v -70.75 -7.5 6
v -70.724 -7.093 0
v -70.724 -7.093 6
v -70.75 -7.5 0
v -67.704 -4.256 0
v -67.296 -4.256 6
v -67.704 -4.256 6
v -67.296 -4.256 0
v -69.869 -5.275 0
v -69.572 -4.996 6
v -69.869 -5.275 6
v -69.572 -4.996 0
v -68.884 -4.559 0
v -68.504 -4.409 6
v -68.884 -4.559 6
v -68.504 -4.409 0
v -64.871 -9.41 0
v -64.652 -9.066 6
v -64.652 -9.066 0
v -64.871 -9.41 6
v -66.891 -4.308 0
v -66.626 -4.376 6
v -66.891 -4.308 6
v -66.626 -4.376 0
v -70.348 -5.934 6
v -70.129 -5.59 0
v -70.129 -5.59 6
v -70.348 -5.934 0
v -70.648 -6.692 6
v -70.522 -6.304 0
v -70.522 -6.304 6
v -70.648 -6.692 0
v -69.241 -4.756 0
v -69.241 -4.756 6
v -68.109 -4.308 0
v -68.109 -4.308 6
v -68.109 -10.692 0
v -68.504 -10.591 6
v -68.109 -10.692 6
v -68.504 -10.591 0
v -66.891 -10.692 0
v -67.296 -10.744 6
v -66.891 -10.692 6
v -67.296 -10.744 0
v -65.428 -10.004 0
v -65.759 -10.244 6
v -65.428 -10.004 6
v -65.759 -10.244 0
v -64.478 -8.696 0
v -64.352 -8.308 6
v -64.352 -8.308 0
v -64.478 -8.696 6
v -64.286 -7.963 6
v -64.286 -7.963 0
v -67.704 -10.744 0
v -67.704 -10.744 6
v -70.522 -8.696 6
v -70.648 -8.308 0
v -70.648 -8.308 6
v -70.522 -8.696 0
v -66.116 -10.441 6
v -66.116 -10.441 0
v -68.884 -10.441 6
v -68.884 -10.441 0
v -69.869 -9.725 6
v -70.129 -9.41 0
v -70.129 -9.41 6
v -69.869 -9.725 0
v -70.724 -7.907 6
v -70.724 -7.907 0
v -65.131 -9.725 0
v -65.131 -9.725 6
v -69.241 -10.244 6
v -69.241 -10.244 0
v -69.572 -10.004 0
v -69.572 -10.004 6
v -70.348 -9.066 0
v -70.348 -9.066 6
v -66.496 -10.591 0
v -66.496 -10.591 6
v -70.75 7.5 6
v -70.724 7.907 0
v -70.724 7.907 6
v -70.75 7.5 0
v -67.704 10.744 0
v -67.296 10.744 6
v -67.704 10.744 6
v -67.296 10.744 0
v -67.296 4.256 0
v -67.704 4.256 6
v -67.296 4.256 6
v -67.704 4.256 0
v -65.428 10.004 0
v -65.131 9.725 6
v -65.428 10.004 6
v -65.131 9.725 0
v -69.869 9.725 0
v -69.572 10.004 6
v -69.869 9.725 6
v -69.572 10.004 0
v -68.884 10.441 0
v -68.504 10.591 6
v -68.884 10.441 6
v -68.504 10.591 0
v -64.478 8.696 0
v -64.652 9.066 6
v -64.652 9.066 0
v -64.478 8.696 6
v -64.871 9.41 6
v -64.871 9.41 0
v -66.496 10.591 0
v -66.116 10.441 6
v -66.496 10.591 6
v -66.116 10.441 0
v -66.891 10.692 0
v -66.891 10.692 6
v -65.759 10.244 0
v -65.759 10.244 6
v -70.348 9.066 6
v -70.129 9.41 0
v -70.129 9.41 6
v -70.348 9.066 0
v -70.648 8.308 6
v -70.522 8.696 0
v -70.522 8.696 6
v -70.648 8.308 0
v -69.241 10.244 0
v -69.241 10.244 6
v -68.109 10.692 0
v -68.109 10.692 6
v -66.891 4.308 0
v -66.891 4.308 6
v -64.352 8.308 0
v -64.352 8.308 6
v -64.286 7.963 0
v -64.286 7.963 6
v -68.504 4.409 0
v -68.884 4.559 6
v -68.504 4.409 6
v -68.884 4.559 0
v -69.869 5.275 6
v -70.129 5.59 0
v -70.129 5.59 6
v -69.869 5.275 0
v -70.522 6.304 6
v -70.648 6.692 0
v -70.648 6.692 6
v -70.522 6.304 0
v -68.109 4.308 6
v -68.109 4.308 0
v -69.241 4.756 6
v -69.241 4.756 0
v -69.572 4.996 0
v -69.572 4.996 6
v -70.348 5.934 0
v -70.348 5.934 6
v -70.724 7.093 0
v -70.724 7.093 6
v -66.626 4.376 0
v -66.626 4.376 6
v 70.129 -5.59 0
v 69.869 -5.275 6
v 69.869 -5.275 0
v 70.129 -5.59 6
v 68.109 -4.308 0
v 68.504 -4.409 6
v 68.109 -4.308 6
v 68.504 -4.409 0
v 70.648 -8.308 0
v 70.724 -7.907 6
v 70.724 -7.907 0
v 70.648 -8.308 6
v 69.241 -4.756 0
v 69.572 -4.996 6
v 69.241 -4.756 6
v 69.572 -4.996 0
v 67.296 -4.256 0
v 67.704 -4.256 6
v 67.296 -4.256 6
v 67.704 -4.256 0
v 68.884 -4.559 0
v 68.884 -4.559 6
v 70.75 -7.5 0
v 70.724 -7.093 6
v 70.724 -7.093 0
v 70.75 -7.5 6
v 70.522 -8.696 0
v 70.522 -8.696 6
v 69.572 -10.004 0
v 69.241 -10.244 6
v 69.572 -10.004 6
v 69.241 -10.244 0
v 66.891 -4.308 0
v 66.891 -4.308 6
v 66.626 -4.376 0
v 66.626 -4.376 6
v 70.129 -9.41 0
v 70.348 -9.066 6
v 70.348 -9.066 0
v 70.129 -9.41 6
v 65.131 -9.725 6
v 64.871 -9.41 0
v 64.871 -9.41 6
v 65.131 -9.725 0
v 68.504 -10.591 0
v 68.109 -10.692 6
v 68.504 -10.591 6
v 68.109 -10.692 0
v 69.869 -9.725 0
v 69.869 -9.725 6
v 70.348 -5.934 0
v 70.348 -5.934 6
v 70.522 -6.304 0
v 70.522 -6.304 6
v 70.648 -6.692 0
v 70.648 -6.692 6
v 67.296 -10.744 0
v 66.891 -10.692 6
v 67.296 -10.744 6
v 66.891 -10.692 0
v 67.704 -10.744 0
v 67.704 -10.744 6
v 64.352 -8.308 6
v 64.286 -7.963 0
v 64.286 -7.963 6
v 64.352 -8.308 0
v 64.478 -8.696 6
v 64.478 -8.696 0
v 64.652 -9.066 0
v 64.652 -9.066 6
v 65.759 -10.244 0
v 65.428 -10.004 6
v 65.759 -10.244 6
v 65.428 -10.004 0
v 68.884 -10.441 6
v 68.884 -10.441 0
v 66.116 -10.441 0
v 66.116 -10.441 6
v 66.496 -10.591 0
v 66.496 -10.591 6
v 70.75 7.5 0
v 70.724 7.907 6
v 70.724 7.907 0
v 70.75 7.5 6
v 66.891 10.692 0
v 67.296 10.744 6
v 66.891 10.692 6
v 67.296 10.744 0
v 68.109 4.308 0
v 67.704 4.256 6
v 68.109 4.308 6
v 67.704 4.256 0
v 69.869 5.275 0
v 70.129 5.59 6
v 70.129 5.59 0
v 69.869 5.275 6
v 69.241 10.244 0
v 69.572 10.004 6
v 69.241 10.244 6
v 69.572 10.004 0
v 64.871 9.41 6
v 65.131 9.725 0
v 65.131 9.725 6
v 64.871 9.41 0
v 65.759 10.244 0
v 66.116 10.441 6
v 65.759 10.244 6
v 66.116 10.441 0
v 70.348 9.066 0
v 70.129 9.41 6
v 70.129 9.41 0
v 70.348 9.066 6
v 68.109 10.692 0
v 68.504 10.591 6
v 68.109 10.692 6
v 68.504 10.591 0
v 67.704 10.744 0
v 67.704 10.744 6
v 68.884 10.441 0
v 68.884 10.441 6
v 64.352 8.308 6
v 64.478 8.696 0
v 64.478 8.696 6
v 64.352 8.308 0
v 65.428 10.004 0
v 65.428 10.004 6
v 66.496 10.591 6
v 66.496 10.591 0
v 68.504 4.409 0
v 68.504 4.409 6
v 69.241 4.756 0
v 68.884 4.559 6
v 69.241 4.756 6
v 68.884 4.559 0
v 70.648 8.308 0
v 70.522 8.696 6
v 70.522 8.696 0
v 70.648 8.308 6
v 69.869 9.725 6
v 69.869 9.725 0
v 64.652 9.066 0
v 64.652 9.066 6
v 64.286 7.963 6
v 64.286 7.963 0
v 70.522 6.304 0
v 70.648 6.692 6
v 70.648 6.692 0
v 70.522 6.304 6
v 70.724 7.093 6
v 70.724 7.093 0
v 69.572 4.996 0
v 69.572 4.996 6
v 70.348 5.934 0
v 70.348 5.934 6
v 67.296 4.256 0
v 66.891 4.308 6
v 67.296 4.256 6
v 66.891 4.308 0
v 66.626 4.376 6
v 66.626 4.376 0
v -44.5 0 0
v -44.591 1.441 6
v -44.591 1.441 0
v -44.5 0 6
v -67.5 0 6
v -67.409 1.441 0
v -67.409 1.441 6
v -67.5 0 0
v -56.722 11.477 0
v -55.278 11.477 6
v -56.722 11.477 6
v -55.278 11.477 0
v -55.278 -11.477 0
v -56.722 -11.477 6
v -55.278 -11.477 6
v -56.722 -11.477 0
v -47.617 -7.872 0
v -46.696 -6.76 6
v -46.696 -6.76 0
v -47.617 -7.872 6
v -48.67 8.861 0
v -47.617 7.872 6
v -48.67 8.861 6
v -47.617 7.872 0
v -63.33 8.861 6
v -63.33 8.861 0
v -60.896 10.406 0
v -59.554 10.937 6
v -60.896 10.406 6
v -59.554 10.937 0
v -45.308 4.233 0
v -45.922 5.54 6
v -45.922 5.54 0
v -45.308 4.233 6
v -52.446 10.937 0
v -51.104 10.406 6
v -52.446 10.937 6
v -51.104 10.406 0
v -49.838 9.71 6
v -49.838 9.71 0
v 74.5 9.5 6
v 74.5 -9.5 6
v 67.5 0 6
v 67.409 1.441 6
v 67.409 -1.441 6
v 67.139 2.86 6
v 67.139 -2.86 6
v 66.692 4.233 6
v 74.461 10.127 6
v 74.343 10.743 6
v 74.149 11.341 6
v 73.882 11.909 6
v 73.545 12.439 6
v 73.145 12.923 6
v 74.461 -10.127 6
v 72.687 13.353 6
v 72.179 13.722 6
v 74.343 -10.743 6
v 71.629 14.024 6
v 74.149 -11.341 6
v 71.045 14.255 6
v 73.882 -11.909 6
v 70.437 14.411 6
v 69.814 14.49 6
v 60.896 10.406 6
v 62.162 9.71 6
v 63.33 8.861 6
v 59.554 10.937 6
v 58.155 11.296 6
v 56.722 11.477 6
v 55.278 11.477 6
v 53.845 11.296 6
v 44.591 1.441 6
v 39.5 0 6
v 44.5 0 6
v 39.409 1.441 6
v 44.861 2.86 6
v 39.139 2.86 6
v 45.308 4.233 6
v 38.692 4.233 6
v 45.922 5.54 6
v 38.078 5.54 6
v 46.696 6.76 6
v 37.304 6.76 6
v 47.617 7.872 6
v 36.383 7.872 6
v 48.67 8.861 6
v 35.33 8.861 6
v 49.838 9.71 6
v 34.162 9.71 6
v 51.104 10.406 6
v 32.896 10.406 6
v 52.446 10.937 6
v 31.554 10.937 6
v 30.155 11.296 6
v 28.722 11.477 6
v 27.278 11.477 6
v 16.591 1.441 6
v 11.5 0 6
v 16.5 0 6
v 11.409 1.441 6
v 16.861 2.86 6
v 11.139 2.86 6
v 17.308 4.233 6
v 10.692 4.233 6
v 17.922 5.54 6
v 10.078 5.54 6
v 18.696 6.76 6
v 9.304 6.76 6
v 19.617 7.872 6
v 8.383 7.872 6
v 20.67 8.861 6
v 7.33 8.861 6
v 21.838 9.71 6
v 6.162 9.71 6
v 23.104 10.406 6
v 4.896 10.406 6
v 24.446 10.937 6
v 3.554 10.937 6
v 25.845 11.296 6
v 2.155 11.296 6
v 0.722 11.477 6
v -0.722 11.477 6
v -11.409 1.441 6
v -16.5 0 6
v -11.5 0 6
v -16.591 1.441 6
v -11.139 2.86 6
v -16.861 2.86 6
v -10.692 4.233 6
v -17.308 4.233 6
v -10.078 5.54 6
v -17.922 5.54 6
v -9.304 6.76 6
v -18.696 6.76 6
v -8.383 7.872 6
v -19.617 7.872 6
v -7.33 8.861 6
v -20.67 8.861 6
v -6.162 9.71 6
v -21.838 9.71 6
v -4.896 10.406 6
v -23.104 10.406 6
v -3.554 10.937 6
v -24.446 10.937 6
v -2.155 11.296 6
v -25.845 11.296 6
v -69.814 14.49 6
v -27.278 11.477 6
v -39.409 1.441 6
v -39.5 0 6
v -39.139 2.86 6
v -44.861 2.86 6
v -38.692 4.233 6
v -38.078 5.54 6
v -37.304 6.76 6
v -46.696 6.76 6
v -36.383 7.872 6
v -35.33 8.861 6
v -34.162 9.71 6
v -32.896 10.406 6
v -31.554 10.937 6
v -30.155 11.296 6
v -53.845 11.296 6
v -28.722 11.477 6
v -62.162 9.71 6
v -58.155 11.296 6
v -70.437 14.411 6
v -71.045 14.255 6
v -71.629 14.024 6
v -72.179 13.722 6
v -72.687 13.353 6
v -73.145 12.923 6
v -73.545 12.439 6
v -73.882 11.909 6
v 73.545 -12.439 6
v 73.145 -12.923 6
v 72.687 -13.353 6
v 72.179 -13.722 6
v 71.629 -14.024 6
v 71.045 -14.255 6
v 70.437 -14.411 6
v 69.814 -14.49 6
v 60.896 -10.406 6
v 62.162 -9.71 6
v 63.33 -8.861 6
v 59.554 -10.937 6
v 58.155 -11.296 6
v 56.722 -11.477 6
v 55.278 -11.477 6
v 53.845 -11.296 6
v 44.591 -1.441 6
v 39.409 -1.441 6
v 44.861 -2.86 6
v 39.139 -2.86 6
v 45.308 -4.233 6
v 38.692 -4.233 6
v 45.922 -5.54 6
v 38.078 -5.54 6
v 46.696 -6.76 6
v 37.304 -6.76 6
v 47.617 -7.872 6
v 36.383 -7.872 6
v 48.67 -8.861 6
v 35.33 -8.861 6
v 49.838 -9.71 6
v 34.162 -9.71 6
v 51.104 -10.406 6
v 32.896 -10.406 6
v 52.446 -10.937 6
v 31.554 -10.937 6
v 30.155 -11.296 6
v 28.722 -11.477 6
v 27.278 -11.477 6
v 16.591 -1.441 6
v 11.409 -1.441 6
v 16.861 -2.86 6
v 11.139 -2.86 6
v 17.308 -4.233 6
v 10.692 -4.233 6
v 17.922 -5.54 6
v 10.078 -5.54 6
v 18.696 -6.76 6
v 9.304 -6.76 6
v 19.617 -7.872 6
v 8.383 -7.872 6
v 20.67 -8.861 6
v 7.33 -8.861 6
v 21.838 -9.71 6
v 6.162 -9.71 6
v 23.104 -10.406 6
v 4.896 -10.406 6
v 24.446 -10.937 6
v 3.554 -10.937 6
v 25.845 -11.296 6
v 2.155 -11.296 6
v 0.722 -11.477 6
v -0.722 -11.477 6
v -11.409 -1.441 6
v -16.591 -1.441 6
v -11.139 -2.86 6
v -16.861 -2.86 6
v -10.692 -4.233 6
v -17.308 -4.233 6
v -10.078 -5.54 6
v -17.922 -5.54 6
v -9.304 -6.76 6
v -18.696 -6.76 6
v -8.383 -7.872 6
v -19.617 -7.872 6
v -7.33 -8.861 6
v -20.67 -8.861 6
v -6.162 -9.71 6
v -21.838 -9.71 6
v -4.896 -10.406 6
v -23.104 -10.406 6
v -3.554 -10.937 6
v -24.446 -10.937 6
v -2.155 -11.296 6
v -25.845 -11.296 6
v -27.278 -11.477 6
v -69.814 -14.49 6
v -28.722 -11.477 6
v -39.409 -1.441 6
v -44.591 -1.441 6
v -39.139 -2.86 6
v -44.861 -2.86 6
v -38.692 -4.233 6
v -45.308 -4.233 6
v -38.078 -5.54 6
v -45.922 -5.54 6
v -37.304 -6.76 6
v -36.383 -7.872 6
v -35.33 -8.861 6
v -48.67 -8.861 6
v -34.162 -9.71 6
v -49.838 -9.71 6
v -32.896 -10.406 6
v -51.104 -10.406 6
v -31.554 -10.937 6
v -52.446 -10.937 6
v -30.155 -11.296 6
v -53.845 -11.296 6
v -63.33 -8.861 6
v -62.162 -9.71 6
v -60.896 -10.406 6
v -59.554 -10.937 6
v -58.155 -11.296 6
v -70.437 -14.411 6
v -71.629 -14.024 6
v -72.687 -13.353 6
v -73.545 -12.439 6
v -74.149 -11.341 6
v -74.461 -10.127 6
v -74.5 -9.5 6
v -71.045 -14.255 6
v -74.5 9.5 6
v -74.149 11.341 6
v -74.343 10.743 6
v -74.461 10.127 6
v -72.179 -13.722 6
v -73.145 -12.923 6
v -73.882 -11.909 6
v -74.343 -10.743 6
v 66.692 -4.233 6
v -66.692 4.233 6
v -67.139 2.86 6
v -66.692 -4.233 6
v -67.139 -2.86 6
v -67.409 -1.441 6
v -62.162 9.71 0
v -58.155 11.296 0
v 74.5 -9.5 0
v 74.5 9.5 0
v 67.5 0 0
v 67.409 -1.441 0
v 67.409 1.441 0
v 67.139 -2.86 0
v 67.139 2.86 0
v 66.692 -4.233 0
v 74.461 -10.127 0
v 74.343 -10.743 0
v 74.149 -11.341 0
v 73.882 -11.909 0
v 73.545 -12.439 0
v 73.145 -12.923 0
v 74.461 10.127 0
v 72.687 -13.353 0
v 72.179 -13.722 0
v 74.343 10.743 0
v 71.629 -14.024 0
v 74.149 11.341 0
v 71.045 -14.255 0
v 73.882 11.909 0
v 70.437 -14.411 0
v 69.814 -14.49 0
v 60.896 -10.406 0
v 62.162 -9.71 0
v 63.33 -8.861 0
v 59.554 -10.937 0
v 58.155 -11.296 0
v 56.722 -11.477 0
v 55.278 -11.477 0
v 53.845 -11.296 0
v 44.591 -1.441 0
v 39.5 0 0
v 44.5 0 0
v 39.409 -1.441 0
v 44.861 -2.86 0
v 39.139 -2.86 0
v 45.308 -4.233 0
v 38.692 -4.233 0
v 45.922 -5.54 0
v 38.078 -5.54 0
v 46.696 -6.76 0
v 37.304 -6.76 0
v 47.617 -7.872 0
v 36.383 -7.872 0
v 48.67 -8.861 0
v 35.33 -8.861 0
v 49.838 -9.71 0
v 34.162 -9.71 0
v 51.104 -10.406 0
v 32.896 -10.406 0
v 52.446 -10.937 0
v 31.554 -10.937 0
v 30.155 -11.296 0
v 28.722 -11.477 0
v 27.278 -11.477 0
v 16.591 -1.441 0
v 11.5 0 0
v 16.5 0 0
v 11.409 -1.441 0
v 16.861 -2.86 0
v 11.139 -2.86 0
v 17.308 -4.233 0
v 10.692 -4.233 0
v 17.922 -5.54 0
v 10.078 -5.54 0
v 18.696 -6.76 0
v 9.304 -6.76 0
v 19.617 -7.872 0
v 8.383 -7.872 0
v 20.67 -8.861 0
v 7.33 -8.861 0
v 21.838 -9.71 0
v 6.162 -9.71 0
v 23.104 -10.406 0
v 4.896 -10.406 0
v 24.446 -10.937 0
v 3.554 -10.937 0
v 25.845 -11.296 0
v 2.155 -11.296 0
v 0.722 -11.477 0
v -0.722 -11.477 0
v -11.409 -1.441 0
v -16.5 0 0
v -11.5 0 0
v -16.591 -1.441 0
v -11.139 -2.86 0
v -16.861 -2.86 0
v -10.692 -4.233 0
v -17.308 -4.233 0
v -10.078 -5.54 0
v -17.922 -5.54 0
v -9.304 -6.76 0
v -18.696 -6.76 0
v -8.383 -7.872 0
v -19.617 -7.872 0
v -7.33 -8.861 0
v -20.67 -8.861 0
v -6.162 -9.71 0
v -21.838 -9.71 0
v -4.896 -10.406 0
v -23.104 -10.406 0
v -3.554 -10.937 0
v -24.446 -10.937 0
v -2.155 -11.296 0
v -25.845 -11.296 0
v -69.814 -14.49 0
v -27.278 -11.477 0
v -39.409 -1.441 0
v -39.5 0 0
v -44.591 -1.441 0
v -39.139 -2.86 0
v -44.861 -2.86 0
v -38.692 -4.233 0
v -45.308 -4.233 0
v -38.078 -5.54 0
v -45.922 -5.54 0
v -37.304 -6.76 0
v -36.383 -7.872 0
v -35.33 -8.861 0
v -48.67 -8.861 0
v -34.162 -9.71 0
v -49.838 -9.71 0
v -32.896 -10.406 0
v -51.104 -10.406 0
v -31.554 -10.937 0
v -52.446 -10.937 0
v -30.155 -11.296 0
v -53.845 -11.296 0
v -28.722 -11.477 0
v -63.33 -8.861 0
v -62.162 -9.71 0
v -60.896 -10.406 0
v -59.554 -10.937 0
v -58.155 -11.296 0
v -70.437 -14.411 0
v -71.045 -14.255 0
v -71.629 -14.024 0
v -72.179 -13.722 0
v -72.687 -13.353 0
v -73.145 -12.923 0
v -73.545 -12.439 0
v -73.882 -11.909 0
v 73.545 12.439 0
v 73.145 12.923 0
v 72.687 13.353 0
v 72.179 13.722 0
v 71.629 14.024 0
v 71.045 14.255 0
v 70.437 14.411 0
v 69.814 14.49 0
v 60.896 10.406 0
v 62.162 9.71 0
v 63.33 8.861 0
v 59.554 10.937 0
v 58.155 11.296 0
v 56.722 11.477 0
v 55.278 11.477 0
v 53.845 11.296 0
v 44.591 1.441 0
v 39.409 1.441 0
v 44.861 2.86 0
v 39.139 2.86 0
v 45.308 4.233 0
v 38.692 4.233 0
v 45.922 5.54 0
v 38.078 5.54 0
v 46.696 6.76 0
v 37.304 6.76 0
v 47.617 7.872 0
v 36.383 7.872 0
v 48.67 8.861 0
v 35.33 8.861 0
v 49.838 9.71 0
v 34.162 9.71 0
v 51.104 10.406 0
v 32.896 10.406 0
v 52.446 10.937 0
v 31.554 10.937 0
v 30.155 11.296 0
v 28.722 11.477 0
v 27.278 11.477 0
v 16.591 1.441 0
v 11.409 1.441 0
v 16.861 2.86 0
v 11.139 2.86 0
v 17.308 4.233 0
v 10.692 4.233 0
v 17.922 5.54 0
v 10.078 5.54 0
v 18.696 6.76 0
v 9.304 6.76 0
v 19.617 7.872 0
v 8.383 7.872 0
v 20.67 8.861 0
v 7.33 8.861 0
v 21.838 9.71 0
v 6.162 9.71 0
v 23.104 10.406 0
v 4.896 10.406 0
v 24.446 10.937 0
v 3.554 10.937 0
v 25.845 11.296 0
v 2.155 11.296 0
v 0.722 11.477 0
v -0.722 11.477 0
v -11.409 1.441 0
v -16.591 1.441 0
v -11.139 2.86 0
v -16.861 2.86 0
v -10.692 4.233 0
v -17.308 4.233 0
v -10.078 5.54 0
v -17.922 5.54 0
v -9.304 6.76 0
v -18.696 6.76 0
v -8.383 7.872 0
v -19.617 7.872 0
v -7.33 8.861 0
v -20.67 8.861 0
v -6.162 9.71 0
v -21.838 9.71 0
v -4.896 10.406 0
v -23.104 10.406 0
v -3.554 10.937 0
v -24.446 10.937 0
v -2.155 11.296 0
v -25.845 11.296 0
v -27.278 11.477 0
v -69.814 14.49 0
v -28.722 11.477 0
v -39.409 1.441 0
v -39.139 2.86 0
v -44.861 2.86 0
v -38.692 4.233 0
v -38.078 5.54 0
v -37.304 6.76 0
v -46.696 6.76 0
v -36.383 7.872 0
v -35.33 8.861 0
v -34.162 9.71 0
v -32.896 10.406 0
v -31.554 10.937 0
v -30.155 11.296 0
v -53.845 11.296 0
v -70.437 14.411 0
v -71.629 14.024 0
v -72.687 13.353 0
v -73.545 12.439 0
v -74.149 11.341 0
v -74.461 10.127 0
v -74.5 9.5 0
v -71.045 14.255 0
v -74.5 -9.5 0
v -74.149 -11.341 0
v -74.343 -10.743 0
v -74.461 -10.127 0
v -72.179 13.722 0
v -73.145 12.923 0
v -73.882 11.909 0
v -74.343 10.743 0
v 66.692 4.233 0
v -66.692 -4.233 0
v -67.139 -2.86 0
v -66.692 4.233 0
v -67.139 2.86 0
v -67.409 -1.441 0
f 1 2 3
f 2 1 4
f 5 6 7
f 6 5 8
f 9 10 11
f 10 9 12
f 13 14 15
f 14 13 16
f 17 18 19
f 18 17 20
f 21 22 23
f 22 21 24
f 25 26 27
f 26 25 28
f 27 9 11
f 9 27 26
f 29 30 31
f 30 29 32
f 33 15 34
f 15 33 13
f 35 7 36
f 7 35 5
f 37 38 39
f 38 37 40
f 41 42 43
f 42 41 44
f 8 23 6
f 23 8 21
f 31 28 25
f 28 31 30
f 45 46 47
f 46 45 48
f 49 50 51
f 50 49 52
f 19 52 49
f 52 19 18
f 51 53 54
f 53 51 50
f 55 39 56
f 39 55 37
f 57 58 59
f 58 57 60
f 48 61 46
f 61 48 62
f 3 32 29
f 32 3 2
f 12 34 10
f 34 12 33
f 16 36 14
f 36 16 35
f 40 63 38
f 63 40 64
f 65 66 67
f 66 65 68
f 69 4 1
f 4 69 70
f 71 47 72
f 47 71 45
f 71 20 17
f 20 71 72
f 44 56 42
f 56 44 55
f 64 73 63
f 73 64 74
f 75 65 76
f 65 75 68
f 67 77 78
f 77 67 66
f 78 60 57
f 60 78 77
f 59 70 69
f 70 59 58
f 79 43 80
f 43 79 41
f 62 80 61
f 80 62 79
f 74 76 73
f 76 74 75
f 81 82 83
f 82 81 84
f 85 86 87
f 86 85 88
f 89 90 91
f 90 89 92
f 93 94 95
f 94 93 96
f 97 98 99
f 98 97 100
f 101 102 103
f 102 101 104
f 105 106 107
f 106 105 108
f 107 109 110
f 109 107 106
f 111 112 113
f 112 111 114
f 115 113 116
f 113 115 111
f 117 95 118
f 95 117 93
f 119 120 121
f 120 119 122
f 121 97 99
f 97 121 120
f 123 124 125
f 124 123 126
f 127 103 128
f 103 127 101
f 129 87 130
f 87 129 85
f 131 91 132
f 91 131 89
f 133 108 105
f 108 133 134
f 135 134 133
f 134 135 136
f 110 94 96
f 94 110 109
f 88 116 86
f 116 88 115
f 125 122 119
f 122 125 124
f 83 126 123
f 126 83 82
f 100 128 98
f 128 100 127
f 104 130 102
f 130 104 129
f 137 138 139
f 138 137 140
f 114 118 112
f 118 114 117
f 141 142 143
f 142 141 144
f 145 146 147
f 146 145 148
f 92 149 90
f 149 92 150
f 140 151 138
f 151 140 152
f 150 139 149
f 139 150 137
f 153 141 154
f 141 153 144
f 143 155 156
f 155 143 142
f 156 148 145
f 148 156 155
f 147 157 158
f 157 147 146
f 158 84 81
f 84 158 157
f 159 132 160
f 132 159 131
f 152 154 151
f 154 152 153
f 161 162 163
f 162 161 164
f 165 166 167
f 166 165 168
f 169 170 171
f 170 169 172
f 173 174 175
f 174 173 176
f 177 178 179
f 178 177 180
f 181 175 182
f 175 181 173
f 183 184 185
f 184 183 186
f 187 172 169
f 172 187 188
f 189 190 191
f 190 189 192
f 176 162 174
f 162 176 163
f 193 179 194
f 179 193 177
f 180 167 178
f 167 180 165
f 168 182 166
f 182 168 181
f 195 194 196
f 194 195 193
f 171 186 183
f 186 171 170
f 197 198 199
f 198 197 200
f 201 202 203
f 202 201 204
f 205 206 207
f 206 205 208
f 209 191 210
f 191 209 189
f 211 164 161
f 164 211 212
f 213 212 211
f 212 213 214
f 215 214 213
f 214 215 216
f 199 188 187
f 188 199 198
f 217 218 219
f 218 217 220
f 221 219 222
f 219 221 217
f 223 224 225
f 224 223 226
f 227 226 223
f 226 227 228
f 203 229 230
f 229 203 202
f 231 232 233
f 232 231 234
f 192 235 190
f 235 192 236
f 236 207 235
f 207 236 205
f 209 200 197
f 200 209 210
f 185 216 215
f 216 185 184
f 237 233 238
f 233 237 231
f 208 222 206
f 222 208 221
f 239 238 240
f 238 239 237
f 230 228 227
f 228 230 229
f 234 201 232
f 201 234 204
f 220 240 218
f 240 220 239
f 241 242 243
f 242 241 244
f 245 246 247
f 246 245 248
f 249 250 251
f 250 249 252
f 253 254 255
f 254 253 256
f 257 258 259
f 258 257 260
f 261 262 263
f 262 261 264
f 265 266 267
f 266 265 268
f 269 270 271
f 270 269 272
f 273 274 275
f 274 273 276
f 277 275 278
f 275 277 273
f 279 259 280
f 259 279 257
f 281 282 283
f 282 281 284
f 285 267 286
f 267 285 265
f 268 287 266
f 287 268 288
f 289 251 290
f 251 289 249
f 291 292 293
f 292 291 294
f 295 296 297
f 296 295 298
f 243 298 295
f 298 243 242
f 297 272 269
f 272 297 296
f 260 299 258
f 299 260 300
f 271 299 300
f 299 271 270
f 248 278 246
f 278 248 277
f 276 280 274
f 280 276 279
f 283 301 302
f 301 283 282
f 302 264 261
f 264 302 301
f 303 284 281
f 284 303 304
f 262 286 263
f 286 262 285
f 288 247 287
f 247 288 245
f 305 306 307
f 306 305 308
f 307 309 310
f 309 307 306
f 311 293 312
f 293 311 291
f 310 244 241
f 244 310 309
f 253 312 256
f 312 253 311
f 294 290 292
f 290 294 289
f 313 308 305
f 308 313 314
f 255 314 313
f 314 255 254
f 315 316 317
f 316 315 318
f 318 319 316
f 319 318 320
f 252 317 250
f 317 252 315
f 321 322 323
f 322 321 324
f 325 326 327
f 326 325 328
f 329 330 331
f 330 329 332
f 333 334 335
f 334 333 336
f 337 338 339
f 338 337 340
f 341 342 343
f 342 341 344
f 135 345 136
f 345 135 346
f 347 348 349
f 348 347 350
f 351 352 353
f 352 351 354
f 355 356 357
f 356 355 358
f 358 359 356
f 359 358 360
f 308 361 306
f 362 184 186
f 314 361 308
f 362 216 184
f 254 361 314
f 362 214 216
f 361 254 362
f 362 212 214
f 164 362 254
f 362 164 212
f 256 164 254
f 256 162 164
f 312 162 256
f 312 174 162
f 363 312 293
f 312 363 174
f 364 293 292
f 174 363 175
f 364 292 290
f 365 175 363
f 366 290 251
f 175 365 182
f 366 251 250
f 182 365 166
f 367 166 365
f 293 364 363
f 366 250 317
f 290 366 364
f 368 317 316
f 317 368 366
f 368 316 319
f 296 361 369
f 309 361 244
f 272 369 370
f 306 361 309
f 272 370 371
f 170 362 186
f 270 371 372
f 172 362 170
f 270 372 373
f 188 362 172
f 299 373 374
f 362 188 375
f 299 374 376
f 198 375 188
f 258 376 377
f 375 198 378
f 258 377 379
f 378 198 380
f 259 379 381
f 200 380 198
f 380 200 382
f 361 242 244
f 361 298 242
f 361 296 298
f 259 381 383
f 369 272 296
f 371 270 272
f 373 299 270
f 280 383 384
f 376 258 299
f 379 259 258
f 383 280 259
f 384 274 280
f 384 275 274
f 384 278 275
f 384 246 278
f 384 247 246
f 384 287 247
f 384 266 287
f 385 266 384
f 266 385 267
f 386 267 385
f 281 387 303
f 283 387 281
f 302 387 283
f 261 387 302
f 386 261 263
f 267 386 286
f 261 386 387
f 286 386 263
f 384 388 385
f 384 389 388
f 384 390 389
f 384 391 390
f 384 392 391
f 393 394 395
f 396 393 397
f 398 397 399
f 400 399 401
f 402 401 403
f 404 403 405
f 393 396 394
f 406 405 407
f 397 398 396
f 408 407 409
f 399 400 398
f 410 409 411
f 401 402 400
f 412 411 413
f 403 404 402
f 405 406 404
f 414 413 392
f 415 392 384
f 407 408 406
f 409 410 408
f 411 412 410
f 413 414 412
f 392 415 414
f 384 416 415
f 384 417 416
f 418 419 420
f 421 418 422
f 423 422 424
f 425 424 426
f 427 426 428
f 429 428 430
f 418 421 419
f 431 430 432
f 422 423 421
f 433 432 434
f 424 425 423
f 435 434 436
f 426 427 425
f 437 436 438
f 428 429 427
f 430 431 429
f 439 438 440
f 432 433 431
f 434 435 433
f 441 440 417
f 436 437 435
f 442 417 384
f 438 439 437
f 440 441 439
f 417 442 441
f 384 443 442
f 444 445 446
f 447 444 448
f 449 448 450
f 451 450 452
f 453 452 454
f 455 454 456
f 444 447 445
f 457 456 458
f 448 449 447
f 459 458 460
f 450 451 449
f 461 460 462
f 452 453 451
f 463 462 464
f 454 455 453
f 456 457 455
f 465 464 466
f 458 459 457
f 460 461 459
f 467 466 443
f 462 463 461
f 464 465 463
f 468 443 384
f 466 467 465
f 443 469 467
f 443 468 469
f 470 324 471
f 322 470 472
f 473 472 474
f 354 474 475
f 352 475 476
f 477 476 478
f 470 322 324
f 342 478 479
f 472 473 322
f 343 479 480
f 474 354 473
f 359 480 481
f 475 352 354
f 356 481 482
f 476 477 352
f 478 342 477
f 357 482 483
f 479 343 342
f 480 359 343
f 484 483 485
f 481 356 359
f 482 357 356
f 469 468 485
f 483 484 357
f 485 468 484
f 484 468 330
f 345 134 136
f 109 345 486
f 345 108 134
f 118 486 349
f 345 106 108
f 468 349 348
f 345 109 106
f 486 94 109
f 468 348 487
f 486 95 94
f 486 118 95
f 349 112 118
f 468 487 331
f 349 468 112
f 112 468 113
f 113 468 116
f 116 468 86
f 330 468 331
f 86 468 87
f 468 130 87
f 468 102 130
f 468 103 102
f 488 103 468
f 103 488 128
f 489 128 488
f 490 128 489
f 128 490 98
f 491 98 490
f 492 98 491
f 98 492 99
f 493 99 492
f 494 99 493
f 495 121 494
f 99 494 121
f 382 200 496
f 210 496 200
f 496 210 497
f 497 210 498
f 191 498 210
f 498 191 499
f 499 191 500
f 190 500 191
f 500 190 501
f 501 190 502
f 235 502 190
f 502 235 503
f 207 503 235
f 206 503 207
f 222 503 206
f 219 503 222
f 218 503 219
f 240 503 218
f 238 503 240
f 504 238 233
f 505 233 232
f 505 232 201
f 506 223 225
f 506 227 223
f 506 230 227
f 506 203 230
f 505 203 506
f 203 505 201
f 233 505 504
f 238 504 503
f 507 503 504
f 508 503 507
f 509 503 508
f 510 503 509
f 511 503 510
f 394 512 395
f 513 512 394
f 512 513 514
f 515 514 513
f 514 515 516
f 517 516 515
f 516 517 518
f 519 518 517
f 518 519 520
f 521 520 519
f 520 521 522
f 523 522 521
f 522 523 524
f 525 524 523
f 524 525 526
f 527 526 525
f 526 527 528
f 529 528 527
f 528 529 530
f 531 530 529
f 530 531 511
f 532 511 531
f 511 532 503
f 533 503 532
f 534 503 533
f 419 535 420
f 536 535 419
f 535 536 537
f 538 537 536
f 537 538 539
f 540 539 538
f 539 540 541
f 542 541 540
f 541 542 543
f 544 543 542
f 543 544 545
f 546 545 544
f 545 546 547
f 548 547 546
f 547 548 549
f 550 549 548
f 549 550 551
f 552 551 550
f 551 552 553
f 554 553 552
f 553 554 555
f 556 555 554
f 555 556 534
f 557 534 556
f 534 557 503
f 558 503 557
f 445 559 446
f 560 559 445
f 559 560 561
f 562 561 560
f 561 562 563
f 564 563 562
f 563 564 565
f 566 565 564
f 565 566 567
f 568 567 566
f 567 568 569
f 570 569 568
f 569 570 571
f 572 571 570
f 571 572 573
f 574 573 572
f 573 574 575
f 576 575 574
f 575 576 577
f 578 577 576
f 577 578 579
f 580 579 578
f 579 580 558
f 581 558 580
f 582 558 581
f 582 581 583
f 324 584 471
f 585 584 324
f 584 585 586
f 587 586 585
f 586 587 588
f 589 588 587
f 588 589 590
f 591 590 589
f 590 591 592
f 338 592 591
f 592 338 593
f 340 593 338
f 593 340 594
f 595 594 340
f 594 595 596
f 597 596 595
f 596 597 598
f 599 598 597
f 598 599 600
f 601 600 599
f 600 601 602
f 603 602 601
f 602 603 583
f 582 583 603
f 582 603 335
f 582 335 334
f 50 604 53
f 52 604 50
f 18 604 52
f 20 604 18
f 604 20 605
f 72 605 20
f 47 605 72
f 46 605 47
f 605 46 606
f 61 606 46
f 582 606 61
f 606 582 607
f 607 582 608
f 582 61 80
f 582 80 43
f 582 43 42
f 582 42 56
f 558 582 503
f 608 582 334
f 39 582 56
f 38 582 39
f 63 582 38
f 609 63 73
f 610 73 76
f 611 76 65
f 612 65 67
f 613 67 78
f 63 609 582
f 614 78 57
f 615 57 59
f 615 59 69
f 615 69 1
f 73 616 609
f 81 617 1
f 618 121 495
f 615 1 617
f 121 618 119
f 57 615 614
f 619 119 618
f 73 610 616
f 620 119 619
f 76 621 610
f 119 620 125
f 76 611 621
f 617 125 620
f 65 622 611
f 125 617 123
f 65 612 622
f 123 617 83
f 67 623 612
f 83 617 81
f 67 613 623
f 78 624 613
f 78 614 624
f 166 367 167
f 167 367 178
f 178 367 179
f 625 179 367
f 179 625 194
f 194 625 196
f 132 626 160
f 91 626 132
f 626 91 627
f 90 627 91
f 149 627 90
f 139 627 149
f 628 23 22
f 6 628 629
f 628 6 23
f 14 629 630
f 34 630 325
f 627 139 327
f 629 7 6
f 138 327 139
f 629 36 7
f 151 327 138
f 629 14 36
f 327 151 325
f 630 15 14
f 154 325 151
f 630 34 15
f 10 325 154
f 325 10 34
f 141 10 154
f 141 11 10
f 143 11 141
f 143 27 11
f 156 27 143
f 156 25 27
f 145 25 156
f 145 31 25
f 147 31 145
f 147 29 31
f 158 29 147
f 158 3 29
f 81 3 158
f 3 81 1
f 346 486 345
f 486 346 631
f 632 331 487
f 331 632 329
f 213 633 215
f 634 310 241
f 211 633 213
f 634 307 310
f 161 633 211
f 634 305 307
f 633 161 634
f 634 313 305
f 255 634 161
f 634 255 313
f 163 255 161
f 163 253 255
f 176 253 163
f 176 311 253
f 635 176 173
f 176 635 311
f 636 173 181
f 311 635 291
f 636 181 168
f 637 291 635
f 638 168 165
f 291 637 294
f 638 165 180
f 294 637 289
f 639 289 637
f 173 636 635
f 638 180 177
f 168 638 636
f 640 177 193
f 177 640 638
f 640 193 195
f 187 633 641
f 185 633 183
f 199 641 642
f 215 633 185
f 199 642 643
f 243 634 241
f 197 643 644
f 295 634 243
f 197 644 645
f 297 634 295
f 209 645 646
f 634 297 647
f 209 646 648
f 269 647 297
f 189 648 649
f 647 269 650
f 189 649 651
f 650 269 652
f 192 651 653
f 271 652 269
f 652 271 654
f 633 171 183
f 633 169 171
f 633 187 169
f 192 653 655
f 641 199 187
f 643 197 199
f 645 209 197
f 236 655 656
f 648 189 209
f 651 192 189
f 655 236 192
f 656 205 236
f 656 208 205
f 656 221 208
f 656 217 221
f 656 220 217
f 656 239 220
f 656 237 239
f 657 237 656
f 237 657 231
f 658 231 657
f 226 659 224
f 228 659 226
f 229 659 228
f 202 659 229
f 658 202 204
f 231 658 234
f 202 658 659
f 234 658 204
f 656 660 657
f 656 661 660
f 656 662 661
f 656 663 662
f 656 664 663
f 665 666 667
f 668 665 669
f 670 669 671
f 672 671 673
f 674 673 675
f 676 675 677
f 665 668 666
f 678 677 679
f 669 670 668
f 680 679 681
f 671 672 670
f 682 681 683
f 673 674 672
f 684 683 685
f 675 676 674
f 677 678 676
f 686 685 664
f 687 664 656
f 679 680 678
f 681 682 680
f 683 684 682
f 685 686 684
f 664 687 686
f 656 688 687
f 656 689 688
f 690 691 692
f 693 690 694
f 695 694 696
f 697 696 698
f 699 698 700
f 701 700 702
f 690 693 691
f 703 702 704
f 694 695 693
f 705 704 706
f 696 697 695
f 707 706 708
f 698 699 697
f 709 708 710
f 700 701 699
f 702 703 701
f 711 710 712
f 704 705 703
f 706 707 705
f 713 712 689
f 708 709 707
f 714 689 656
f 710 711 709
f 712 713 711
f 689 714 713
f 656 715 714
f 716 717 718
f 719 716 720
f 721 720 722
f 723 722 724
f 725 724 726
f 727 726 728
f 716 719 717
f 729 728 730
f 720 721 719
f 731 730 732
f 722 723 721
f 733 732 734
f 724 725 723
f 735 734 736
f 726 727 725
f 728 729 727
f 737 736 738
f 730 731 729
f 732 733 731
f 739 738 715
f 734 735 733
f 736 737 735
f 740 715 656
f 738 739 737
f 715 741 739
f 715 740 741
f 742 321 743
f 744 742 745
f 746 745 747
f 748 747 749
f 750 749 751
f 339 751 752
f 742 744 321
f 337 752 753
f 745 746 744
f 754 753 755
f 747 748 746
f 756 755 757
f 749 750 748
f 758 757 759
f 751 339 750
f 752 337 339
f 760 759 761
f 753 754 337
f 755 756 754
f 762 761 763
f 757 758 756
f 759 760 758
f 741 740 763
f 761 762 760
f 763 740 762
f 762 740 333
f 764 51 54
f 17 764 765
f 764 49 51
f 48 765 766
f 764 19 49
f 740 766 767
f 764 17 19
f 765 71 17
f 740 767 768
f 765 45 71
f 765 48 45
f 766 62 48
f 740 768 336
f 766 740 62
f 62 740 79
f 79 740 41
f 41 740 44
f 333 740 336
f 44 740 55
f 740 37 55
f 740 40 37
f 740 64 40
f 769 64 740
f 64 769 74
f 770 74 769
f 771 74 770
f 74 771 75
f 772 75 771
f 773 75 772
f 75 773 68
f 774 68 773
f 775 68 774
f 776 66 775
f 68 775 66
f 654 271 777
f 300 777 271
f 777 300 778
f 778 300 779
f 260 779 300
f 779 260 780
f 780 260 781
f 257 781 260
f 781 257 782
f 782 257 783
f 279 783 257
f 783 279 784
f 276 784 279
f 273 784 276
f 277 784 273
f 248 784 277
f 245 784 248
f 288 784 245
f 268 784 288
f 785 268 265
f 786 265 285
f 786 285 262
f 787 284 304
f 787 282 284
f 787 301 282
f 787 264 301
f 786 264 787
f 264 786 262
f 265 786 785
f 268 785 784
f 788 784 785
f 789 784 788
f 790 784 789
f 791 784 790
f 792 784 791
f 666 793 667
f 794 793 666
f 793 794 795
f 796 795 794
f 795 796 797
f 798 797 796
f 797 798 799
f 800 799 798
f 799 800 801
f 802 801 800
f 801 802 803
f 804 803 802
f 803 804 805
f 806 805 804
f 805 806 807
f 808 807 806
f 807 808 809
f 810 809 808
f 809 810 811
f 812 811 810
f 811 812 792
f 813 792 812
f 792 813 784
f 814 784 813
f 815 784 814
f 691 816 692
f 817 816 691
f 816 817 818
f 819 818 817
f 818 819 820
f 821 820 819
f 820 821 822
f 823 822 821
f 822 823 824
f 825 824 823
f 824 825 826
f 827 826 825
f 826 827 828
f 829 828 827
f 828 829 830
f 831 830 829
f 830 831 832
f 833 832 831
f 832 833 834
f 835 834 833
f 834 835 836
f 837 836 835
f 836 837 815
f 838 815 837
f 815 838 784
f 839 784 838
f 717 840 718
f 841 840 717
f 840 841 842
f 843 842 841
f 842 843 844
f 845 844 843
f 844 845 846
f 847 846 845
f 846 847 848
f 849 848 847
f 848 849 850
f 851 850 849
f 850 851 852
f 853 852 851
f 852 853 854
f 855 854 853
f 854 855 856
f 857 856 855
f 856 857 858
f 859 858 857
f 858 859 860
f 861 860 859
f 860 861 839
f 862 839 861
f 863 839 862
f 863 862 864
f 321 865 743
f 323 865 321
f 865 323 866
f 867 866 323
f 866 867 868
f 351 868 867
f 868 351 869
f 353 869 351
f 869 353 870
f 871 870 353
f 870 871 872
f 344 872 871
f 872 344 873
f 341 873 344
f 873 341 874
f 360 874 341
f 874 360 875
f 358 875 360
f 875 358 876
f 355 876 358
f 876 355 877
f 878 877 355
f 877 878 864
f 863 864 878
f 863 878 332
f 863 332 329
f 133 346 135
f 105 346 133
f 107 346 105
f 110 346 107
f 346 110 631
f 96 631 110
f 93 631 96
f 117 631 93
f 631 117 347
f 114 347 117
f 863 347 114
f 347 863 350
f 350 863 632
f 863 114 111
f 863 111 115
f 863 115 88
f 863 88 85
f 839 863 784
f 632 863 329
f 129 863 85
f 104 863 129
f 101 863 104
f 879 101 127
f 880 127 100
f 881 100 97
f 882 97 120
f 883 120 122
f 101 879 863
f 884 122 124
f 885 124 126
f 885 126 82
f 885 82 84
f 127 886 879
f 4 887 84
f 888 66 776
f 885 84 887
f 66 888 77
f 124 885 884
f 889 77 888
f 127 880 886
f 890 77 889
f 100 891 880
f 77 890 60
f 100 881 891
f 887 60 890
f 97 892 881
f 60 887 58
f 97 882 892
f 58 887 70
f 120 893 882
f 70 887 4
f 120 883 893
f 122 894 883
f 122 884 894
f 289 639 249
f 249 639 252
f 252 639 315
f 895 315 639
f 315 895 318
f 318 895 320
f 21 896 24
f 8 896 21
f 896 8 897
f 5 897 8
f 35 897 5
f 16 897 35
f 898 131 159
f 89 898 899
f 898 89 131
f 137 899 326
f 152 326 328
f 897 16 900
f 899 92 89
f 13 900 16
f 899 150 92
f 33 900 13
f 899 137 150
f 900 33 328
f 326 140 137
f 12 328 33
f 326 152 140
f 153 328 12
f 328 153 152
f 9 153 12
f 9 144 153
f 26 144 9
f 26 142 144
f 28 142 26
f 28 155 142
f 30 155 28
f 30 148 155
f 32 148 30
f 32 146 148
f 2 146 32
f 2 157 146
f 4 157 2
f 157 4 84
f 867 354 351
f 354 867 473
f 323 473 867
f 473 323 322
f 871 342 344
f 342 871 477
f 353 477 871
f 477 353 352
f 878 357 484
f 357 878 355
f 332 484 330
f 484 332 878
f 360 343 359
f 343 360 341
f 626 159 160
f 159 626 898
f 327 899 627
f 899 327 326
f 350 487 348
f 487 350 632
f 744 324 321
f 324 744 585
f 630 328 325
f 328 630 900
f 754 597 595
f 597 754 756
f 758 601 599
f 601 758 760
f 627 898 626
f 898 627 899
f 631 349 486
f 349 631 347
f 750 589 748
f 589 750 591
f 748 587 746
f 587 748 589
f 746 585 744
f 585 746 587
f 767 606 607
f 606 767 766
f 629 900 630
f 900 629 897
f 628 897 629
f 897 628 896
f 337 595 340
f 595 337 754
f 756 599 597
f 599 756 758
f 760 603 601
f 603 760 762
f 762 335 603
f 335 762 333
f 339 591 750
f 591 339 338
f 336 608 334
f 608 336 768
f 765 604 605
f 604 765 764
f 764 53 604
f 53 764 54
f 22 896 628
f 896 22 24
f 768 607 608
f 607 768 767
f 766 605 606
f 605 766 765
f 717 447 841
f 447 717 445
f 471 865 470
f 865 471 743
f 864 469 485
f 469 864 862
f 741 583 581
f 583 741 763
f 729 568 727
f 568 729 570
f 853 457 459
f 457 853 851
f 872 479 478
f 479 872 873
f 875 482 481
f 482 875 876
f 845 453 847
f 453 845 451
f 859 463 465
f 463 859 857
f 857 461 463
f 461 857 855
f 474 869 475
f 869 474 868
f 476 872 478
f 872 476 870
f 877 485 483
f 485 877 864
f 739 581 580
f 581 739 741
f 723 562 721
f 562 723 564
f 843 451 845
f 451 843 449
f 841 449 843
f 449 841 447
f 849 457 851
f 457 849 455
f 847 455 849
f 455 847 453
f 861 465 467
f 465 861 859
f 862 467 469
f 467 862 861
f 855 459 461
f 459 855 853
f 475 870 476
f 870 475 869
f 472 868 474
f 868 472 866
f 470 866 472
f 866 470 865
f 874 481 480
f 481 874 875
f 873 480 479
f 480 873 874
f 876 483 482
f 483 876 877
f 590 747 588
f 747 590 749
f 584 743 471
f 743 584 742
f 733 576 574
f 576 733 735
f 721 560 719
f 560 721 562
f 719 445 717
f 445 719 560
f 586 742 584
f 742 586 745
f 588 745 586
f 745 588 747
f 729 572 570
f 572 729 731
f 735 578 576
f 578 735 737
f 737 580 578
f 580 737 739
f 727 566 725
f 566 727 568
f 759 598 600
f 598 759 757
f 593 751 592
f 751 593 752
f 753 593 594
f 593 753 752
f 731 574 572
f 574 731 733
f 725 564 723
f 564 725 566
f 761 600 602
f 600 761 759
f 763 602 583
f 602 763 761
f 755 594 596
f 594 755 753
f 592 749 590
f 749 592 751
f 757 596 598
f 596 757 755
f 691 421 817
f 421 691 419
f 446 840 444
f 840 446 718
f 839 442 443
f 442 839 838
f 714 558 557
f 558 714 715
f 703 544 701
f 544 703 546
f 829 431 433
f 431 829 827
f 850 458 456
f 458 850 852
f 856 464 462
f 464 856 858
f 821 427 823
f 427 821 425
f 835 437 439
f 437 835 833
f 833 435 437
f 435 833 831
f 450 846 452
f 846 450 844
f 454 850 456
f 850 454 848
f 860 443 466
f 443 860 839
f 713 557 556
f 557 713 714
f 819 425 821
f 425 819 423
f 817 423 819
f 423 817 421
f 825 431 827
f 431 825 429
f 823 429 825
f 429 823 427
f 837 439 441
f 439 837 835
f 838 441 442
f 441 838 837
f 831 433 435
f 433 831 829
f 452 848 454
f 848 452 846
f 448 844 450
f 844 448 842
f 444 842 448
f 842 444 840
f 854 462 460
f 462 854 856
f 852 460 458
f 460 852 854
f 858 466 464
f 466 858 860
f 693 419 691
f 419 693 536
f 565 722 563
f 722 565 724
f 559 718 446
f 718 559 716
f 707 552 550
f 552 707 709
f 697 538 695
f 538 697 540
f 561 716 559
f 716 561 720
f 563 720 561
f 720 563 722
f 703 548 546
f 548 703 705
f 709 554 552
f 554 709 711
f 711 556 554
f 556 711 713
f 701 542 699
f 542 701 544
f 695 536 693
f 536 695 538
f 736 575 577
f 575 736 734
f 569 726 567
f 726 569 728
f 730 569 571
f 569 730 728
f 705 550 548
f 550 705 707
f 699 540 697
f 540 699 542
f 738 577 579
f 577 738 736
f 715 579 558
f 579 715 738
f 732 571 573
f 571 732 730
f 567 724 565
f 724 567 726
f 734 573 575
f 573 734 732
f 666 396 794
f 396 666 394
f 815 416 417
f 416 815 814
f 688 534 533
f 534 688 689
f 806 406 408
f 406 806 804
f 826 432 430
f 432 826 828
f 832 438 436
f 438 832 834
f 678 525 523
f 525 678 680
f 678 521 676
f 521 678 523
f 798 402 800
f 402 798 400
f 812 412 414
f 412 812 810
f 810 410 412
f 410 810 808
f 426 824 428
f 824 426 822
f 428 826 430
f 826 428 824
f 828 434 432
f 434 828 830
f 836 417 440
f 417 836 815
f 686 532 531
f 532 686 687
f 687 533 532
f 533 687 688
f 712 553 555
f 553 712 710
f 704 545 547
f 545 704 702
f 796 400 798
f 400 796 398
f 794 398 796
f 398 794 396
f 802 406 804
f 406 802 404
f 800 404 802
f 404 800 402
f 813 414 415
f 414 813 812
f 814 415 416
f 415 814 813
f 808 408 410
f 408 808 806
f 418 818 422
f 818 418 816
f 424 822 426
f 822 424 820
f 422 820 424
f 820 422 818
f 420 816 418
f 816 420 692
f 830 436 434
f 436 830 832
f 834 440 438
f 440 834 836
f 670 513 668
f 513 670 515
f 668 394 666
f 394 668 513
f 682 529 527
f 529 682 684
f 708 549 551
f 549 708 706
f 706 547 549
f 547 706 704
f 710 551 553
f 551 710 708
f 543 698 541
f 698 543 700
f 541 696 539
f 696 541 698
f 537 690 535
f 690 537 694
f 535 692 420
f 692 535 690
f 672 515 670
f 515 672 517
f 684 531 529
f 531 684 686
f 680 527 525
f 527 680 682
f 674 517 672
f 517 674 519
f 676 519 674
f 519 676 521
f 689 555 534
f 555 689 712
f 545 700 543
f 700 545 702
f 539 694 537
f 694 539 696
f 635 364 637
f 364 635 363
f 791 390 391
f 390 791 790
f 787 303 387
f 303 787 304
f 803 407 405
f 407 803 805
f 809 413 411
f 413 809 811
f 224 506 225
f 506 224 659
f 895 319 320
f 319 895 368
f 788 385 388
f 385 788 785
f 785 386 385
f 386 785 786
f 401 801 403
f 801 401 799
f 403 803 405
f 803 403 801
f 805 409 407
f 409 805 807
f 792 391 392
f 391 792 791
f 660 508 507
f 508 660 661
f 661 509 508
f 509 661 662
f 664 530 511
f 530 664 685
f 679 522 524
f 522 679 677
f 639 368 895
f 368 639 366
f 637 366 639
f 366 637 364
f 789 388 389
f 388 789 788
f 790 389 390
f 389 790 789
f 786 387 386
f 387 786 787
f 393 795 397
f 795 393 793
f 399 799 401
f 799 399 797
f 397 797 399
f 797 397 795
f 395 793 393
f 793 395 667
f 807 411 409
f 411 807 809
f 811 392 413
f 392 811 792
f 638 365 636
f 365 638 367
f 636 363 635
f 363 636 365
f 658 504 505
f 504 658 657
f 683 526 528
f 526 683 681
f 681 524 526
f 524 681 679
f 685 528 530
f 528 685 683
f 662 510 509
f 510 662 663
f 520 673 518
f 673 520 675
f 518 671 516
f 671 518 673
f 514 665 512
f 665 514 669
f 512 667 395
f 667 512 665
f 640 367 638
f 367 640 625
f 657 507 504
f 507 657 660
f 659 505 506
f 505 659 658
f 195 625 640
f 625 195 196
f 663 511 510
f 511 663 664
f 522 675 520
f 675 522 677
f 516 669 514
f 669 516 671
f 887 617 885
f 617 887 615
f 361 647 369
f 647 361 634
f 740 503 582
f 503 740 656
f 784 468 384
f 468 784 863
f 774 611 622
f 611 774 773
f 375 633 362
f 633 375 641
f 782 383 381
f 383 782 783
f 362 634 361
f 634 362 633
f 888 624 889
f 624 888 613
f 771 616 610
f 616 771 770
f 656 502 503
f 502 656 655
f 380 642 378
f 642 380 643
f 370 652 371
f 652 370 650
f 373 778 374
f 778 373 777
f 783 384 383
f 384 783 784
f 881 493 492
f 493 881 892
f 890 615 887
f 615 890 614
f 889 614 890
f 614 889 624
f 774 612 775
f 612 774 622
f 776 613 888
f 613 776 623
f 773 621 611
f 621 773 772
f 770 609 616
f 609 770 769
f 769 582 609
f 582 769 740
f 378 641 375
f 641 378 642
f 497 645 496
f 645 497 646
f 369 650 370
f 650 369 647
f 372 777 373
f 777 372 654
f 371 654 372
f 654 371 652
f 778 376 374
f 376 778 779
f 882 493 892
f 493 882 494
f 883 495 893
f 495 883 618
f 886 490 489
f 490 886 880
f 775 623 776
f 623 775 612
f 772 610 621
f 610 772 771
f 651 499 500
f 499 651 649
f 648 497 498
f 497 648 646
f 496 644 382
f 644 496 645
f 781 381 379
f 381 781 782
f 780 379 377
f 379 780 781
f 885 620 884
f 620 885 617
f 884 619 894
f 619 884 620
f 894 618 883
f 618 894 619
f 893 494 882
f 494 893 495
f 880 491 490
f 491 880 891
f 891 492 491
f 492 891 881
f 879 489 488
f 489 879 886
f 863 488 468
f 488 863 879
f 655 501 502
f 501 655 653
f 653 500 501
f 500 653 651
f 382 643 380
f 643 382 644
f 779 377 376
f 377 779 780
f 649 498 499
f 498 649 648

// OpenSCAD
$fn = 50;


difference() {
	union() {
		hull() {
			translate(v = [-69.5000000000, 9.5000000000, 0]) {
				cylinder(h = 6, r = 5);
			}
			translate(v = [69.5000000000, 9.5000000000, 0]) {
				cylinder(h = 6, r = 5);
			}
			translate(v = [-69.5000000000, -9.5000000000, 0]) {
				cylinder(h = 6, r = 5);
			}
			translate(v = [69.5000000000, -9.5000000000, 0]) {
				cylinder(h = 6, r = 5);
			}
		}
	}
	union() {
		#translate(v = [-67.5000000000, -7.5000000000, -100.0000000000]) {
			cylinder(h = 200, r = 3.2500000000);
		}
		#translate(v = [-67.5000000000, 7.5000000000, -100.0000000000]) {
			cylinder(h = 200, r = 3.2500000000);
		}
		#translate(v = [67.5000000000, -7.5000000000, -100.0000000000]) {
			cylinder(h = 200, r = 3.2500000000);
		}
		#translate(v = [67.5000000000, 7.5000000000, -100.0000000000]) {
			cylinder(h = 200, r = 3.2500000000);
		}
		#translate(v = [-56.0000000000, 0, 0]) {
			cylinder(h = 6, r = 11.5000000000);
		}
		#translate(v = [-28.0000000000, 0, 0]) {
			cylinder(h = 6, r = 11.5000000000);
		}
		#cylinder(h = 6, r = 11.5000000000);
		#translate(v = [28.0000000000, 0, 0]) {
			cylinder(h = 6, r = 11.5000000000);
		}
		#translate(v = [56.0000000000, 0, 0]) {
			cylinder(h = 6, r = 11.5000000000);
		}
	}
}
